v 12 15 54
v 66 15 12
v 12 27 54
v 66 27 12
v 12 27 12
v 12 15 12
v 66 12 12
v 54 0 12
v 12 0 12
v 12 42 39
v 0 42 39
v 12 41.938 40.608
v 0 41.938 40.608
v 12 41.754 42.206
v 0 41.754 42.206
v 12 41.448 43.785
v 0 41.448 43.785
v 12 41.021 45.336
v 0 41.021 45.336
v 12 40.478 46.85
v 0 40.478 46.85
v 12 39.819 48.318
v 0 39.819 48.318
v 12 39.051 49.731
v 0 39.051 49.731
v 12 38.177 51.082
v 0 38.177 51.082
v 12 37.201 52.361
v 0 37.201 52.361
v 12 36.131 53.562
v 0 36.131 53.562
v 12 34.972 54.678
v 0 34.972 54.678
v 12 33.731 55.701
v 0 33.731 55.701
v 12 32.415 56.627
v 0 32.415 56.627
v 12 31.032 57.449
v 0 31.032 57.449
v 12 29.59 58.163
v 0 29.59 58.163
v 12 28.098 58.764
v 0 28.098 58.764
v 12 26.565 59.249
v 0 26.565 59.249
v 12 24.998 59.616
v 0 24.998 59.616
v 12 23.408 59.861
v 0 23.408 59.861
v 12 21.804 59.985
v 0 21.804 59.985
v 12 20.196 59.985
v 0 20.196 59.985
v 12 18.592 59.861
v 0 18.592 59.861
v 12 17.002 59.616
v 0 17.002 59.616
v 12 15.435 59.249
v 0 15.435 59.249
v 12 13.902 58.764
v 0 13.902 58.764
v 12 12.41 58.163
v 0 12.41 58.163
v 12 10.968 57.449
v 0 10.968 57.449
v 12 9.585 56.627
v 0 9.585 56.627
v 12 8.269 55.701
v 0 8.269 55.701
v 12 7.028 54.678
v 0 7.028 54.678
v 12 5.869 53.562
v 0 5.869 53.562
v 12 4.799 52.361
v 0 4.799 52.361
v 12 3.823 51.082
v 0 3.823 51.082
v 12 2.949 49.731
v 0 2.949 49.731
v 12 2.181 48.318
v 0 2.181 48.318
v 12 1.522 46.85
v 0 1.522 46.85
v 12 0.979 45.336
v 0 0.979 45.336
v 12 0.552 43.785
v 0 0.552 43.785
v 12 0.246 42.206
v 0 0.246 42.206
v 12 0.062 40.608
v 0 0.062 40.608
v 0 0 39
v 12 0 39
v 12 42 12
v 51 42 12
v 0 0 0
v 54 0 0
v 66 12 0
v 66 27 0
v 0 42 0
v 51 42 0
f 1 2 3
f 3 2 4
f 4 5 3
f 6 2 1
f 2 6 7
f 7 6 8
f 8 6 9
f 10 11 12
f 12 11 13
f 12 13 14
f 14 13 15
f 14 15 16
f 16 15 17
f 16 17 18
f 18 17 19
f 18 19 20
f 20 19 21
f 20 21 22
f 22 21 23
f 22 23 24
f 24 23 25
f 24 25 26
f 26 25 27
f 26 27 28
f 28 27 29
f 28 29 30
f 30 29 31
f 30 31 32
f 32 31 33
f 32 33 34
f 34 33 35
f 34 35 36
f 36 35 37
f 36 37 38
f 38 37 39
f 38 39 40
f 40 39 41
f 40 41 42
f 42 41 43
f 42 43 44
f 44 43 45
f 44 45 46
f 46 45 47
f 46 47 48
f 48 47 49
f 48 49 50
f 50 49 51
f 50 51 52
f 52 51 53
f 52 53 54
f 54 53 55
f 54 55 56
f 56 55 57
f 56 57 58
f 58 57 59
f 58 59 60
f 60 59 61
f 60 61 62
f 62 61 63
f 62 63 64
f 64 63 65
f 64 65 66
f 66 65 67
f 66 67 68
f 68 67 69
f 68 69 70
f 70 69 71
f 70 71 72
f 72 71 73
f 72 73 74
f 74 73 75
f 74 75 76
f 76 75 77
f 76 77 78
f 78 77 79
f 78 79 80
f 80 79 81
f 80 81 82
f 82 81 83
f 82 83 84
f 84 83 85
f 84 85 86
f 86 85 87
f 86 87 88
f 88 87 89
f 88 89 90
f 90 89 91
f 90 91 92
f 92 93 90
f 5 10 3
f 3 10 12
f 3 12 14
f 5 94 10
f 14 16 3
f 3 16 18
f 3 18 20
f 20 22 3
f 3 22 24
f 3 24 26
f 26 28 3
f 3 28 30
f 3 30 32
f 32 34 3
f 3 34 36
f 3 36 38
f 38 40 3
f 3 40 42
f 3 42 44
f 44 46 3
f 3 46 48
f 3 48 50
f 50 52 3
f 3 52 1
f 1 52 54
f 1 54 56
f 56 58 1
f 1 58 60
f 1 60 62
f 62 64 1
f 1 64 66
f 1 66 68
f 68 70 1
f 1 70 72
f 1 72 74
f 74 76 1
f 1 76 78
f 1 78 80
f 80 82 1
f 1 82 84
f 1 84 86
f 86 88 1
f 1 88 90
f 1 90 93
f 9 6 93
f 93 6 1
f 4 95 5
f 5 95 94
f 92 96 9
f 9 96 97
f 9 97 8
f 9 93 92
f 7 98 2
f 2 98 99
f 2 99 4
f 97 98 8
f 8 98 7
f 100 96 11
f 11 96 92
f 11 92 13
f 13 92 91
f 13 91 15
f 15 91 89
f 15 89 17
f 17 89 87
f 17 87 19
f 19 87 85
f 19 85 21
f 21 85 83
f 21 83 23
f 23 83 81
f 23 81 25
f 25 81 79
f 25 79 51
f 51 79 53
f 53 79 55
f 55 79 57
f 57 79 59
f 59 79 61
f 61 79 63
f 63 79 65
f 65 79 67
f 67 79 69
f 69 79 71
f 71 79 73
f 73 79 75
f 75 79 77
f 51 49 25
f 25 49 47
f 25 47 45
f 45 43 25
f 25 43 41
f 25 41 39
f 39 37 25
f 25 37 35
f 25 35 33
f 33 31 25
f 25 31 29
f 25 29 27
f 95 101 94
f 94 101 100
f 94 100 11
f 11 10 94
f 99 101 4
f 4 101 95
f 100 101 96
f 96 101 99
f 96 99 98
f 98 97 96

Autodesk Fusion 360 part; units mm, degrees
sketch "Sketch1" plane through (0, 0, 0) normal (0, 0, 1) x (1, 0, 0)
  line L0 (51, 42) -> (0, 42)
  line L1 (0, 42) -> (0, 0)
  line L2 (0, 0) -> (54, 0)
  line L3 (54, 0) -> (66, 12)
  line L4 (66, 12) -> (66, 27)
  line L5 (66, 27) -> (51, 42)
extrude "Extrude1" add sketch "Sketch1" along normal blind 12 makes body 1
sketch "Sketch2" plane through (0, 0, 0) normal (0, 0, 1) x (1, 0, 0)
  line L0 (0, 0) -> (12, 0)
  line L1 (12, 0) -> (12, 42)
  line L2 (12, 42) -> (0, 42)
  line L3 (0, 42) -> (0, 0)
extrude "Extrude2" add sketch "Sketch2" along normal blind 39 bodies 1
sketch "Sketch3" plane through (0, 0, 0) normal (1, 0, 0) x (0, 1, 0)
  line L0 (42, 39) -> (0, 39)
  arc A0 (42, 39) -> (0, 39) centre (21, 39) ccw
extrude "Extrude3" add sketch "Sketch3" along normal blind 12 bodies 1
sketch "Sketch4" plane through (0, 0, 0) normal (0, 1, 0) x (1, 0, 0)
  line L0 (12, -12) -> (12, -54)
  line L1 (12, -54) -> (66, -12)
  line L2 (66, -12) -> (12, -12)
extrude "Extrude4" add sketch "Sketch4" along normal blind 12 separate body makes body 2
move_body "Move1" bodies 2 to x (1, 0, 0) y (0, 1, 0) z (0, 0, 1) at (0, 15, 0)
combine "Combine1" operation add target body 1 tool bodies 2
